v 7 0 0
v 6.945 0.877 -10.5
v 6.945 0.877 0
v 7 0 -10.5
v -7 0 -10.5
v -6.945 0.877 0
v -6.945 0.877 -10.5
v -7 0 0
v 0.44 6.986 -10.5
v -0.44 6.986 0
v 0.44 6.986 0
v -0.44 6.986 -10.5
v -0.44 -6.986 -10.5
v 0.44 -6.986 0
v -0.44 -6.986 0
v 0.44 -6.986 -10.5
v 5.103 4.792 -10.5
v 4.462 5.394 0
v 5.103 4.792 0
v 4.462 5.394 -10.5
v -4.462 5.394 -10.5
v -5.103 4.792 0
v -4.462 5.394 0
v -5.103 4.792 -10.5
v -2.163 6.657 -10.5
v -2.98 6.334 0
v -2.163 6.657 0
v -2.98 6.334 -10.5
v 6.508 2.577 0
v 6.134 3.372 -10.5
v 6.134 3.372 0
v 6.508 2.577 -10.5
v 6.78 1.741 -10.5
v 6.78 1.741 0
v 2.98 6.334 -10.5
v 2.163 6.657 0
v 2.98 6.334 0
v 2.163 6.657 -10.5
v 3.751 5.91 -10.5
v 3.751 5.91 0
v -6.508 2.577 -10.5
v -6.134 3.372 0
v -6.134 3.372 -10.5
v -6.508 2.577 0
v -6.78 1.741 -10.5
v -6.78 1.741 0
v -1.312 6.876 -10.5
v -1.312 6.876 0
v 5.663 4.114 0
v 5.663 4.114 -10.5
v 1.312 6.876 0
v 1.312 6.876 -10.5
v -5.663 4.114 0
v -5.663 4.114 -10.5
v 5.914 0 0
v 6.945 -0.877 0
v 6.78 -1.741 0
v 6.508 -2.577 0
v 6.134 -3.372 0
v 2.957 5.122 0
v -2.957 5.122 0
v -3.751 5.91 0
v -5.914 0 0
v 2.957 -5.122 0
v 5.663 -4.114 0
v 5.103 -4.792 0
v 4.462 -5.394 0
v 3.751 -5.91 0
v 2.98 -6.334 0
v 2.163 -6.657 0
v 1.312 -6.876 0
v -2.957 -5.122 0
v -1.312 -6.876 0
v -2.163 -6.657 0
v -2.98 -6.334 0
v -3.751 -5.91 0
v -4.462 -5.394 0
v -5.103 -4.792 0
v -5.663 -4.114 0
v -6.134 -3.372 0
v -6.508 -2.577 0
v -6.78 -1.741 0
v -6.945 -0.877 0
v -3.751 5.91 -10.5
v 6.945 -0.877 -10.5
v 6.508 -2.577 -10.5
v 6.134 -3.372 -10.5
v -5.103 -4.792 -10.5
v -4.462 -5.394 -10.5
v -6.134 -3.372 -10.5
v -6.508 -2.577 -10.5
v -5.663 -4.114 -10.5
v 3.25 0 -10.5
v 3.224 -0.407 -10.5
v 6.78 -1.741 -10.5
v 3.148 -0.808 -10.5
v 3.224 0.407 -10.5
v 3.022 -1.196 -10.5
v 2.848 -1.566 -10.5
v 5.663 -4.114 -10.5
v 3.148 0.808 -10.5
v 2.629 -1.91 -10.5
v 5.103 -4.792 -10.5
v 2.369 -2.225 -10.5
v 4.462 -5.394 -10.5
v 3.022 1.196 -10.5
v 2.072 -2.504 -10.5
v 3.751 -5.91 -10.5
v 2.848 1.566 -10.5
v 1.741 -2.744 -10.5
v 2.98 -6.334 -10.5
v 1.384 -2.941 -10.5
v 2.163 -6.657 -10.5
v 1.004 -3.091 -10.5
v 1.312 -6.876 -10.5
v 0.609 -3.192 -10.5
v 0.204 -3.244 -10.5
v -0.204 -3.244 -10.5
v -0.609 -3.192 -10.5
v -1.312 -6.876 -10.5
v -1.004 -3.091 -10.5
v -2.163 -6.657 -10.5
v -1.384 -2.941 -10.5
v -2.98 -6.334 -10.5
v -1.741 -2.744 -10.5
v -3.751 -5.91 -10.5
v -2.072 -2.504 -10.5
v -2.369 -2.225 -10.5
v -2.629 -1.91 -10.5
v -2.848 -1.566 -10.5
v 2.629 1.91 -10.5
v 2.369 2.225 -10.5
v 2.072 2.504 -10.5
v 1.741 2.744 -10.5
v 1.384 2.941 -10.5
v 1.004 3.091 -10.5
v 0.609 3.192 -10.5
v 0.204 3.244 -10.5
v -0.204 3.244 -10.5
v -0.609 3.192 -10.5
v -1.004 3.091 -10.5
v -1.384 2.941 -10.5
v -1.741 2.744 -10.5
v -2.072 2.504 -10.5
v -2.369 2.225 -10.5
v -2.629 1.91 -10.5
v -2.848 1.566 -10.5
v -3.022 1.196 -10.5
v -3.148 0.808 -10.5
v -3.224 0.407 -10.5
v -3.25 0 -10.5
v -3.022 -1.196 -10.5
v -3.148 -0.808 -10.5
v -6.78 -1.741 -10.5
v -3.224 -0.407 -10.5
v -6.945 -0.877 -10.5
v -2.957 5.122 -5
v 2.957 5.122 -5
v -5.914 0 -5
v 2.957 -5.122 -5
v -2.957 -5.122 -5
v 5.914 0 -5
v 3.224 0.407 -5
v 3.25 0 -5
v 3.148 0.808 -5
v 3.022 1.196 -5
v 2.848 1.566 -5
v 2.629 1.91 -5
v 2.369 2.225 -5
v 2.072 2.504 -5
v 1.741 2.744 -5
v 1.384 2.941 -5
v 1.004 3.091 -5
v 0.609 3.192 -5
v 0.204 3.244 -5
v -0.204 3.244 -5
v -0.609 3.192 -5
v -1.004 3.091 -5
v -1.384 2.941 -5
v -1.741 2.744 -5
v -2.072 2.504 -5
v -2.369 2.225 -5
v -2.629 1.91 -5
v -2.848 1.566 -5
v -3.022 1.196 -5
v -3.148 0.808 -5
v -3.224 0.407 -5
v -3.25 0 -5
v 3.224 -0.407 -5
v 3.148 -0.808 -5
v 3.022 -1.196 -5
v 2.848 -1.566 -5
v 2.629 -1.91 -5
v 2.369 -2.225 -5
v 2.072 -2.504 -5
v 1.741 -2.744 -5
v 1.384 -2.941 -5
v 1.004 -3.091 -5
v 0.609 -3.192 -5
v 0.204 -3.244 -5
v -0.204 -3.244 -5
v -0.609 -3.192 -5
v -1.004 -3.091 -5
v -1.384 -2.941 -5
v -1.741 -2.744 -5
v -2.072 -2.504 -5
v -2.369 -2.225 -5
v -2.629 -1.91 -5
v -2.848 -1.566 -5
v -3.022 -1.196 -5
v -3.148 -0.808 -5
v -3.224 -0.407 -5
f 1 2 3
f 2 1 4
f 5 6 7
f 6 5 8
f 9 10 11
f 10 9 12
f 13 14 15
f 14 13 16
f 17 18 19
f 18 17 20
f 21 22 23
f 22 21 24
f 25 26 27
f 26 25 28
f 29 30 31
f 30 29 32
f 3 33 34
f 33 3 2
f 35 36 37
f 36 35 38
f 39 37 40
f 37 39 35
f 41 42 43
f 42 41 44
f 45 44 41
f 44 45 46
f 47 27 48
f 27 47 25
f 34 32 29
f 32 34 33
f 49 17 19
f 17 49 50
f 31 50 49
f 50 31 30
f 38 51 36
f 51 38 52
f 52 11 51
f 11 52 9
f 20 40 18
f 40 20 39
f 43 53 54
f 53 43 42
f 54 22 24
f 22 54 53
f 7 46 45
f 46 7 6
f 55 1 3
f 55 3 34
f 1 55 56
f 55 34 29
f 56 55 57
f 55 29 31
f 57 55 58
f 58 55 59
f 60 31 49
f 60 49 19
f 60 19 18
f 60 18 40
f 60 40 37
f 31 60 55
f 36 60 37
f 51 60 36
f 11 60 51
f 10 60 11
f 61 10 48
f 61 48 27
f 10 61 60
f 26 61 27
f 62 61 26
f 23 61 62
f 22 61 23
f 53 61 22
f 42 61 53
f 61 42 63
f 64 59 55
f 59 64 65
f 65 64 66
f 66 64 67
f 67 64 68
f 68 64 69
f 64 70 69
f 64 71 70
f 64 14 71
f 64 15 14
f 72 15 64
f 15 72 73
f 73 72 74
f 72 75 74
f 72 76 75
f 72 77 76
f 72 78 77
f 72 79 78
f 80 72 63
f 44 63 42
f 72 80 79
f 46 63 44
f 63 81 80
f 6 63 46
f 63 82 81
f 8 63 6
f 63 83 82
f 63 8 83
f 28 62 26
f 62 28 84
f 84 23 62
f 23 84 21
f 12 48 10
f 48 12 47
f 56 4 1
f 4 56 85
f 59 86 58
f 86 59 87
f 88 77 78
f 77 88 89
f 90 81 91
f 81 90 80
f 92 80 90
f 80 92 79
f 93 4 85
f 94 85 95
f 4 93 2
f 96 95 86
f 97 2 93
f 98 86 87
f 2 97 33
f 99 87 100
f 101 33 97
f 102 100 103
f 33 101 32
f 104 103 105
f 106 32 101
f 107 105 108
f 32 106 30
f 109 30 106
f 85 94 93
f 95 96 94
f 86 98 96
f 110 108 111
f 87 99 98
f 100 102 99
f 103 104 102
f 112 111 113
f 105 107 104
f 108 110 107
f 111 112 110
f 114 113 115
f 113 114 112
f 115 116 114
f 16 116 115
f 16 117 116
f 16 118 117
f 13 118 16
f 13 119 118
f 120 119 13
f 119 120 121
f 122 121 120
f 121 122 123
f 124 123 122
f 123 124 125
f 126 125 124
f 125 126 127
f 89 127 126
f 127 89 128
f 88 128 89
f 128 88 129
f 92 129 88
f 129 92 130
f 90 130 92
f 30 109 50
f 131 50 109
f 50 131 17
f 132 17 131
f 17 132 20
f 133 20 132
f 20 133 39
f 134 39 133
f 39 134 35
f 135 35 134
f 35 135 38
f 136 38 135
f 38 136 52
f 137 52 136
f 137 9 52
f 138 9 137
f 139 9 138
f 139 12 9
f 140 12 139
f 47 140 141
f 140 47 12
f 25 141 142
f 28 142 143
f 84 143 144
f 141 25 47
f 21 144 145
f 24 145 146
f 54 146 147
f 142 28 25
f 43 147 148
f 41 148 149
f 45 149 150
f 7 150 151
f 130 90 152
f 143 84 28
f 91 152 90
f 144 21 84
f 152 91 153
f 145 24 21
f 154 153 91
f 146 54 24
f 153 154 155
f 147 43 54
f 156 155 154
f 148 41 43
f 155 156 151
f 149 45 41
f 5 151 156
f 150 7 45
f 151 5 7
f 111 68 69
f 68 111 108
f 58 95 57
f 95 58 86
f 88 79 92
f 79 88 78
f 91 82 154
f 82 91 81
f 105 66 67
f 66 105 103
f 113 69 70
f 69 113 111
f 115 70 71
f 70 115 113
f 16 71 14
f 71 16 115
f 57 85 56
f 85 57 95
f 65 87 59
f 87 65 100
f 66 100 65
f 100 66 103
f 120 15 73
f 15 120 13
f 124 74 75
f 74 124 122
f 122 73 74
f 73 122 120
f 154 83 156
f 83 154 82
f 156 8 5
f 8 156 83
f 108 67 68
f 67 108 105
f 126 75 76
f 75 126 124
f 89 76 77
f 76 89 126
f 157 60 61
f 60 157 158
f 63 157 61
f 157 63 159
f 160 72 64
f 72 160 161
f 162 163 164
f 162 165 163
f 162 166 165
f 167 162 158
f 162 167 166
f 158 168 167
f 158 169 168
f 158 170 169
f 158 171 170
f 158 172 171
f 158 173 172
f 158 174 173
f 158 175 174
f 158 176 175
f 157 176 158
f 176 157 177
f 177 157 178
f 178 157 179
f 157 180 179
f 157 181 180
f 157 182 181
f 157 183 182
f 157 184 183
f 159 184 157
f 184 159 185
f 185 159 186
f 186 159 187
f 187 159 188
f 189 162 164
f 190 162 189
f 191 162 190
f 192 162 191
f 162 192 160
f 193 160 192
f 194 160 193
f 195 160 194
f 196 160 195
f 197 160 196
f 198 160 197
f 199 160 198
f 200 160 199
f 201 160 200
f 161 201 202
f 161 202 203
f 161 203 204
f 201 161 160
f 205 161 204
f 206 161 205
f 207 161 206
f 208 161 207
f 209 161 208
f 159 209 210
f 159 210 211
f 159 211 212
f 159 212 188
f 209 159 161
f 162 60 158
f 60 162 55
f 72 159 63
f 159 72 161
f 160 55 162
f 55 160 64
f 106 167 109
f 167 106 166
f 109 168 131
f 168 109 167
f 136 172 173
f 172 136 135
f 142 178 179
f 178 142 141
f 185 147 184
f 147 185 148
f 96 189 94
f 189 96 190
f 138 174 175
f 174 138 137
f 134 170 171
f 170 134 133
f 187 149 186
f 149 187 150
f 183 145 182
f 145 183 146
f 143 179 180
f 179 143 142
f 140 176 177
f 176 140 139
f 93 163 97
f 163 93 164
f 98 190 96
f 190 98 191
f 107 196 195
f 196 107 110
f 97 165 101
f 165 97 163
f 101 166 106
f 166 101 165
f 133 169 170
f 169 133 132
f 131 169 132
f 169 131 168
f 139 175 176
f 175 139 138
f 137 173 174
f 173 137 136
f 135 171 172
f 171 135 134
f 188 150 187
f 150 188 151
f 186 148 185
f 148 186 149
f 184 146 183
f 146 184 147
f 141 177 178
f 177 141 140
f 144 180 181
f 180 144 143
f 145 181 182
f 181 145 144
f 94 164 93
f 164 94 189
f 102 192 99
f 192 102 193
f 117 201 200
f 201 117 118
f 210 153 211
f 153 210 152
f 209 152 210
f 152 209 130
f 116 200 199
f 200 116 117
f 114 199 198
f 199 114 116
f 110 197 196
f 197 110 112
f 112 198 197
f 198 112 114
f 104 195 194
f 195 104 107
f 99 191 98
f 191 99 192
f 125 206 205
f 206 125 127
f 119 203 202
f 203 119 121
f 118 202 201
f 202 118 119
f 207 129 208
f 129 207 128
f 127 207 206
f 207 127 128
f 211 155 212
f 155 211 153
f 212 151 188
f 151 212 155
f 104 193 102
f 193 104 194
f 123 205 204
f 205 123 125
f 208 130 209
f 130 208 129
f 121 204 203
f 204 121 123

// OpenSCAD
$fn = 50;


difference() {
	union() {
		translate(v = [0, 0, -10.5000000000]) {
			cylinder(h = 10.5000000000, r = 7.0000000000);
		}
		translate(v = [0, 0, -9.0000000000]) {
			cylinder(h = 9, r = 2.8750000000);
		}
	}
	union() {
		translate(v = [0, 0, 0]) {
			rotate(a = [0, 0, 0]) {
				difference() {
					union() {
						translate(v = [0, 0, -5]) {
							#linear_extrude(height = 5) {
								polygon(points = [[5.9142500000, 0.0000000000], [2.9571250000, 5.1218907443], [-2.9571250000, 5.1218907443], [-5.9142500000, 0.0000000000], [-2.9571250000, -5.1218907443], [2.9571250000, -5.1218907443]]);
							}
						}
					}
					union();
				}
			}
		}
		#translate(v = [0, 0, -100.0000000000]) {
			cylinder(h = 200, r = 3.2500000000);
		}
	}
}
